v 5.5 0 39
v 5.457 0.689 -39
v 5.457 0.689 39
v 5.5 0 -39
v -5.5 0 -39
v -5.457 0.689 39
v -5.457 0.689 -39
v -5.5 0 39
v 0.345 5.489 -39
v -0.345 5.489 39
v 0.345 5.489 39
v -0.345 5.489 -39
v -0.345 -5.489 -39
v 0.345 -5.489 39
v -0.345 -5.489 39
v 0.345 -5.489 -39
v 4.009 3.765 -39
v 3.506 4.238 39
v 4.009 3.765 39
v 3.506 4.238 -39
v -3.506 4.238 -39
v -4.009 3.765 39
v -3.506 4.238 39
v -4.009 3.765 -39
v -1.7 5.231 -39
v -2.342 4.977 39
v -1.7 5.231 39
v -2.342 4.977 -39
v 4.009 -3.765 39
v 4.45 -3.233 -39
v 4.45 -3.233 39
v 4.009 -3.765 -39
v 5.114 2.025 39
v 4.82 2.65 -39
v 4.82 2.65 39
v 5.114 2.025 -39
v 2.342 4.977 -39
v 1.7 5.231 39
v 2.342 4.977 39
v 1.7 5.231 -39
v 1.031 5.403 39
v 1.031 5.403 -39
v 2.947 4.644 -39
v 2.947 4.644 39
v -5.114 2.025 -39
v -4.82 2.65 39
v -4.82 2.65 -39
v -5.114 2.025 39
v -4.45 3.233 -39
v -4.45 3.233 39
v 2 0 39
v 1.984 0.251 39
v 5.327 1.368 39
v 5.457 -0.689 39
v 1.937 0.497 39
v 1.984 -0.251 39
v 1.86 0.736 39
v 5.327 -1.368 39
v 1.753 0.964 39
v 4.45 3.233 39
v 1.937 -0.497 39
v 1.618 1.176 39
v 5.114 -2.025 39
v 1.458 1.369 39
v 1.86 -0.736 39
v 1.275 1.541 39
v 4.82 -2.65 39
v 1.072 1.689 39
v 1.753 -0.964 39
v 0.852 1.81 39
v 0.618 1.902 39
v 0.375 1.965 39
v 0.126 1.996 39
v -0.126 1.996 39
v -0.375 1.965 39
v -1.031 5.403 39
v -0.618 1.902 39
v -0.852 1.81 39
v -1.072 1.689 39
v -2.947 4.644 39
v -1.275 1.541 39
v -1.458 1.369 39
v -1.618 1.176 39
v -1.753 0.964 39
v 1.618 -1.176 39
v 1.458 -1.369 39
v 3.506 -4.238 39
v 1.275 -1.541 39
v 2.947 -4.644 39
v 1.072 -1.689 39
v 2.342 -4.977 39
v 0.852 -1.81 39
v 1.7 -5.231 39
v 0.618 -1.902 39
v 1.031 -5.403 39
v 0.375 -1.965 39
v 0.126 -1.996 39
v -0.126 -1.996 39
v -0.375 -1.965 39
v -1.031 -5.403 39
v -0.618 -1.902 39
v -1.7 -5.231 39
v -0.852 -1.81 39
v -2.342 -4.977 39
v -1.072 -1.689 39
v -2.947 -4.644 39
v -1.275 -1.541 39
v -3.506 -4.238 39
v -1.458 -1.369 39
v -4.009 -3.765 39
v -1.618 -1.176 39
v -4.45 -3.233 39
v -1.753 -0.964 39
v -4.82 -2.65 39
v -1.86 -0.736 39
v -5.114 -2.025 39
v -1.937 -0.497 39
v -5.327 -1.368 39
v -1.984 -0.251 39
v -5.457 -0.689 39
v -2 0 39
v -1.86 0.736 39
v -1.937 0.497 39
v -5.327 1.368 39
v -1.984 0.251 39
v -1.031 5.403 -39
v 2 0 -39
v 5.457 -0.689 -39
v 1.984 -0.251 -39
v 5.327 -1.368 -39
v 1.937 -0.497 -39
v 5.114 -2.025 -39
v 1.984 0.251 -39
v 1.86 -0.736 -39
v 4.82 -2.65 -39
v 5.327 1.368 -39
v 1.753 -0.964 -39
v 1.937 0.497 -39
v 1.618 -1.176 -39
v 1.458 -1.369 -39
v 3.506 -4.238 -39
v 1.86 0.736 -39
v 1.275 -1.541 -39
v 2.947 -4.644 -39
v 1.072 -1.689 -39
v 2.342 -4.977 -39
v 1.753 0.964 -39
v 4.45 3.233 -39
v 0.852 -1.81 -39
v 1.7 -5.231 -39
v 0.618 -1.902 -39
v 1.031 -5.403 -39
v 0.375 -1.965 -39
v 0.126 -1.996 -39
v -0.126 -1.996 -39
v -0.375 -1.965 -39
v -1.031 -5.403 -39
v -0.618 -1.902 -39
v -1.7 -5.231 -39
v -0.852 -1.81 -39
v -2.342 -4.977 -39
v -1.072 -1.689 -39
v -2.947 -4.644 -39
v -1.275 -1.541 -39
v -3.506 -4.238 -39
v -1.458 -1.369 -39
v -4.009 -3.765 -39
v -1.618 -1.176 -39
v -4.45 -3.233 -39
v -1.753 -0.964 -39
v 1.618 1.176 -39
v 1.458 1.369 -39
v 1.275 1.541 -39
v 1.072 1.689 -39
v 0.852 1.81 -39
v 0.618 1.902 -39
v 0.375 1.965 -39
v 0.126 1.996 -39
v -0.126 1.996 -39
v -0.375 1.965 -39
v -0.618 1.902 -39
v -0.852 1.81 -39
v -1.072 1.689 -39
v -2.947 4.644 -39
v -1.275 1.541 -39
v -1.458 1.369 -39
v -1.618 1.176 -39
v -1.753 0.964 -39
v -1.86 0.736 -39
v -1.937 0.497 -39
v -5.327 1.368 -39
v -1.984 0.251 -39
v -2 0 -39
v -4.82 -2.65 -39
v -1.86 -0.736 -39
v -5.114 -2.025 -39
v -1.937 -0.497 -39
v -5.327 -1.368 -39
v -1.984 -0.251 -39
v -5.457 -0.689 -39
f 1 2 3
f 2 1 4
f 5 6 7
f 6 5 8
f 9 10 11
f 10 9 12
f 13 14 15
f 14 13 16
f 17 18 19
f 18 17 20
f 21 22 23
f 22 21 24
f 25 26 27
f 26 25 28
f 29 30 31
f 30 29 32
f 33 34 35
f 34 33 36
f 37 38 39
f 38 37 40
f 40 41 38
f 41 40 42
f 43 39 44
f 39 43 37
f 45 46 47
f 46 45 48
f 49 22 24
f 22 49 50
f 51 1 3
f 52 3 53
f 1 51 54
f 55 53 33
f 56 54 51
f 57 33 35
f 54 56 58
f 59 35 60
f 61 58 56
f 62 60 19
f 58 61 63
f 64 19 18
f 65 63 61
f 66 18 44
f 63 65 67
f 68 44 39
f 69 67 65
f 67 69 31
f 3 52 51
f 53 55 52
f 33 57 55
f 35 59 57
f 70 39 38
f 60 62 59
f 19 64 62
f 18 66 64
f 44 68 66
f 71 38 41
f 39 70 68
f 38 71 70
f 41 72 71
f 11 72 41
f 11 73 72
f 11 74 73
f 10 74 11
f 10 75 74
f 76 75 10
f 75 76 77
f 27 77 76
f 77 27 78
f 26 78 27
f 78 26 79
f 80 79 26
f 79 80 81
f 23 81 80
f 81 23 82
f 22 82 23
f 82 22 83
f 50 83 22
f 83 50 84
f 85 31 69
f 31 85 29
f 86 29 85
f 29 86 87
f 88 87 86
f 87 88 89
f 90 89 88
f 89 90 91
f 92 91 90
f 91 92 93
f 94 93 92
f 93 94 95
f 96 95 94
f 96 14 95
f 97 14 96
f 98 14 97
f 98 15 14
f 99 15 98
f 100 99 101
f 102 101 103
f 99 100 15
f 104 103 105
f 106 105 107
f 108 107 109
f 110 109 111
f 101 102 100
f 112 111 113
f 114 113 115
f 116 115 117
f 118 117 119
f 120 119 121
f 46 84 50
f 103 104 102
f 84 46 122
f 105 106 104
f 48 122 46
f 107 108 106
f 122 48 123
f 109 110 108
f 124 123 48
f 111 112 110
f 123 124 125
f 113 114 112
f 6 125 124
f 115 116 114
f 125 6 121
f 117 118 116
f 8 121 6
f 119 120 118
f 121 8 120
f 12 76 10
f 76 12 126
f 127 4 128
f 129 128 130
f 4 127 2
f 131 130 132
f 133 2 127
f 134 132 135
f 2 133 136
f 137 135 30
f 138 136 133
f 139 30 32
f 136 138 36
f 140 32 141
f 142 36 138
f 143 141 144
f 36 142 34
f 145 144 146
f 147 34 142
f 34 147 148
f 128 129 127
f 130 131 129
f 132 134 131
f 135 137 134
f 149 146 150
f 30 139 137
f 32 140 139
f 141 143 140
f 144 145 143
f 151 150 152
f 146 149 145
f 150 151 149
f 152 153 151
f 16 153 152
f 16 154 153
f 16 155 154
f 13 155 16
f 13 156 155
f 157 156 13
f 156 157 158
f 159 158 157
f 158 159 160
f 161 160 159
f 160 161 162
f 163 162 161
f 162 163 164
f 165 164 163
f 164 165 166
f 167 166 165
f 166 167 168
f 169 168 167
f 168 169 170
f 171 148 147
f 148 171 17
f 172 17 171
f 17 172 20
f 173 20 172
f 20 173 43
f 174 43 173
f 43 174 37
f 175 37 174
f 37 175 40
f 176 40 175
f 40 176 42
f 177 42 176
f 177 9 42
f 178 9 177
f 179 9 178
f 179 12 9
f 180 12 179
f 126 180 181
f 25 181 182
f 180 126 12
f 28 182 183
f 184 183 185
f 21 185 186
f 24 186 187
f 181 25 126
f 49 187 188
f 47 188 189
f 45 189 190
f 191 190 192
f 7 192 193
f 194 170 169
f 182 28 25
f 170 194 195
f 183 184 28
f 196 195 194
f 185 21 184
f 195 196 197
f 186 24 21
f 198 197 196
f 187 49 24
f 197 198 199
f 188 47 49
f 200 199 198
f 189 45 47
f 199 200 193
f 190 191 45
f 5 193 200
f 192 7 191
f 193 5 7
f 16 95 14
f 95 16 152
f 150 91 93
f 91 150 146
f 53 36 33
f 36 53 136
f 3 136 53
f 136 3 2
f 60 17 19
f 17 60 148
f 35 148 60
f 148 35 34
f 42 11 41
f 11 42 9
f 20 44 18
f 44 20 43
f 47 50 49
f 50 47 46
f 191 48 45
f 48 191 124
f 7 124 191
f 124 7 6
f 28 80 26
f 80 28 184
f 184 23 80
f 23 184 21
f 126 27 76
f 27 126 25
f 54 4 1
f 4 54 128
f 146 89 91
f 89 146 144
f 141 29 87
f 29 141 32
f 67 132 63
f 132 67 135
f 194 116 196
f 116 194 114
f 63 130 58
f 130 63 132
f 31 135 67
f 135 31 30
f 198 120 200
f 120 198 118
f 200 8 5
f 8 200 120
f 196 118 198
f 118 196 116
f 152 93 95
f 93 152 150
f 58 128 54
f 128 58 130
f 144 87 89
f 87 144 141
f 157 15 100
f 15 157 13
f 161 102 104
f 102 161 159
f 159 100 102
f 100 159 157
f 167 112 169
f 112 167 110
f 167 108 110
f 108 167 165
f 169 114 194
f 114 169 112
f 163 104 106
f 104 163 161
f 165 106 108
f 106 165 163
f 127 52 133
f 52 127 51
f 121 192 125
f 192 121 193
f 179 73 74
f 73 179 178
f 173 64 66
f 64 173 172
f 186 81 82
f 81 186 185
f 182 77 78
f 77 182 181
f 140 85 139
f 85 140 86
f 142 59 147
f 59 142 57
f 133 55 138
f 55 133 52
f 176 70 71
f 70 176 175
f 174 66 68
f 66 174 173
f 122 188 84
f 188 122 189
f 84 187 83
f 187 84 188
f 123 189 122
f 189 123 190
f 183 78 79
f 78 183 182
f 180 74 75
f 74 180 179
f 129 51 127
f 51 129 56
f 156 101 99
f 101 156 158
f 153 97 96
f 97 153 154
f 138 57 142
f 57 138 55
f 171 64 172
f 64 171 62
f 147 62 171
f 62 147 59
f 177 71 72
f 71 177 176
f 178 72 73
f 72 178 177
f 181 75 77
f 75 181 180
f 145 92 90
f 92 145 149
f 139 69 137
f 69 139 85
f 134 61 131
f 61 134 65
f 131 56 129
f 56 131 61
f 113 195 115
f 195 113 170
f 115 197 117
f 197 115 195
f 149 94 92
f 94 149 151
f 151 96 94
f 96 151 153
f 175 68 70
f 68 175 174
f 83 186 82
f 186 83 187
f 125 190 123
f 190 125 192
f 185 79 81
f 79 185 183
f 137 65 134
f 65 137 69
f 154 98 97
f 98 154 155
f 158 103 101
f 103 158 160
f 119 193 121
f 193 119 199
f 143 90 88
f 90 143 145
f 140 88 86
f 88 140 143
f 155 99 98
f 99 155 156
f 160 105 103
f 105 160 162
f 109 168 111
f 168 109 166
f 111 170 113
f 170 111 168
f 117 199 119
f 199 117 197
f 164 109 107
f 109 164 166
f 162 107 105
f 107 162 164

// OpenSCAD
$fn = 50;


difference() {
	union() {
		translate(v = [0, 0, -39.0000000000]) {
			cylinder(h = 78, r = 5.5000000000);
		}
	}
	union() {
		translate(v = [0, 0, -100.0000000000]) {
			cylinder(h = 200, r = 2);
		}
	}
}
